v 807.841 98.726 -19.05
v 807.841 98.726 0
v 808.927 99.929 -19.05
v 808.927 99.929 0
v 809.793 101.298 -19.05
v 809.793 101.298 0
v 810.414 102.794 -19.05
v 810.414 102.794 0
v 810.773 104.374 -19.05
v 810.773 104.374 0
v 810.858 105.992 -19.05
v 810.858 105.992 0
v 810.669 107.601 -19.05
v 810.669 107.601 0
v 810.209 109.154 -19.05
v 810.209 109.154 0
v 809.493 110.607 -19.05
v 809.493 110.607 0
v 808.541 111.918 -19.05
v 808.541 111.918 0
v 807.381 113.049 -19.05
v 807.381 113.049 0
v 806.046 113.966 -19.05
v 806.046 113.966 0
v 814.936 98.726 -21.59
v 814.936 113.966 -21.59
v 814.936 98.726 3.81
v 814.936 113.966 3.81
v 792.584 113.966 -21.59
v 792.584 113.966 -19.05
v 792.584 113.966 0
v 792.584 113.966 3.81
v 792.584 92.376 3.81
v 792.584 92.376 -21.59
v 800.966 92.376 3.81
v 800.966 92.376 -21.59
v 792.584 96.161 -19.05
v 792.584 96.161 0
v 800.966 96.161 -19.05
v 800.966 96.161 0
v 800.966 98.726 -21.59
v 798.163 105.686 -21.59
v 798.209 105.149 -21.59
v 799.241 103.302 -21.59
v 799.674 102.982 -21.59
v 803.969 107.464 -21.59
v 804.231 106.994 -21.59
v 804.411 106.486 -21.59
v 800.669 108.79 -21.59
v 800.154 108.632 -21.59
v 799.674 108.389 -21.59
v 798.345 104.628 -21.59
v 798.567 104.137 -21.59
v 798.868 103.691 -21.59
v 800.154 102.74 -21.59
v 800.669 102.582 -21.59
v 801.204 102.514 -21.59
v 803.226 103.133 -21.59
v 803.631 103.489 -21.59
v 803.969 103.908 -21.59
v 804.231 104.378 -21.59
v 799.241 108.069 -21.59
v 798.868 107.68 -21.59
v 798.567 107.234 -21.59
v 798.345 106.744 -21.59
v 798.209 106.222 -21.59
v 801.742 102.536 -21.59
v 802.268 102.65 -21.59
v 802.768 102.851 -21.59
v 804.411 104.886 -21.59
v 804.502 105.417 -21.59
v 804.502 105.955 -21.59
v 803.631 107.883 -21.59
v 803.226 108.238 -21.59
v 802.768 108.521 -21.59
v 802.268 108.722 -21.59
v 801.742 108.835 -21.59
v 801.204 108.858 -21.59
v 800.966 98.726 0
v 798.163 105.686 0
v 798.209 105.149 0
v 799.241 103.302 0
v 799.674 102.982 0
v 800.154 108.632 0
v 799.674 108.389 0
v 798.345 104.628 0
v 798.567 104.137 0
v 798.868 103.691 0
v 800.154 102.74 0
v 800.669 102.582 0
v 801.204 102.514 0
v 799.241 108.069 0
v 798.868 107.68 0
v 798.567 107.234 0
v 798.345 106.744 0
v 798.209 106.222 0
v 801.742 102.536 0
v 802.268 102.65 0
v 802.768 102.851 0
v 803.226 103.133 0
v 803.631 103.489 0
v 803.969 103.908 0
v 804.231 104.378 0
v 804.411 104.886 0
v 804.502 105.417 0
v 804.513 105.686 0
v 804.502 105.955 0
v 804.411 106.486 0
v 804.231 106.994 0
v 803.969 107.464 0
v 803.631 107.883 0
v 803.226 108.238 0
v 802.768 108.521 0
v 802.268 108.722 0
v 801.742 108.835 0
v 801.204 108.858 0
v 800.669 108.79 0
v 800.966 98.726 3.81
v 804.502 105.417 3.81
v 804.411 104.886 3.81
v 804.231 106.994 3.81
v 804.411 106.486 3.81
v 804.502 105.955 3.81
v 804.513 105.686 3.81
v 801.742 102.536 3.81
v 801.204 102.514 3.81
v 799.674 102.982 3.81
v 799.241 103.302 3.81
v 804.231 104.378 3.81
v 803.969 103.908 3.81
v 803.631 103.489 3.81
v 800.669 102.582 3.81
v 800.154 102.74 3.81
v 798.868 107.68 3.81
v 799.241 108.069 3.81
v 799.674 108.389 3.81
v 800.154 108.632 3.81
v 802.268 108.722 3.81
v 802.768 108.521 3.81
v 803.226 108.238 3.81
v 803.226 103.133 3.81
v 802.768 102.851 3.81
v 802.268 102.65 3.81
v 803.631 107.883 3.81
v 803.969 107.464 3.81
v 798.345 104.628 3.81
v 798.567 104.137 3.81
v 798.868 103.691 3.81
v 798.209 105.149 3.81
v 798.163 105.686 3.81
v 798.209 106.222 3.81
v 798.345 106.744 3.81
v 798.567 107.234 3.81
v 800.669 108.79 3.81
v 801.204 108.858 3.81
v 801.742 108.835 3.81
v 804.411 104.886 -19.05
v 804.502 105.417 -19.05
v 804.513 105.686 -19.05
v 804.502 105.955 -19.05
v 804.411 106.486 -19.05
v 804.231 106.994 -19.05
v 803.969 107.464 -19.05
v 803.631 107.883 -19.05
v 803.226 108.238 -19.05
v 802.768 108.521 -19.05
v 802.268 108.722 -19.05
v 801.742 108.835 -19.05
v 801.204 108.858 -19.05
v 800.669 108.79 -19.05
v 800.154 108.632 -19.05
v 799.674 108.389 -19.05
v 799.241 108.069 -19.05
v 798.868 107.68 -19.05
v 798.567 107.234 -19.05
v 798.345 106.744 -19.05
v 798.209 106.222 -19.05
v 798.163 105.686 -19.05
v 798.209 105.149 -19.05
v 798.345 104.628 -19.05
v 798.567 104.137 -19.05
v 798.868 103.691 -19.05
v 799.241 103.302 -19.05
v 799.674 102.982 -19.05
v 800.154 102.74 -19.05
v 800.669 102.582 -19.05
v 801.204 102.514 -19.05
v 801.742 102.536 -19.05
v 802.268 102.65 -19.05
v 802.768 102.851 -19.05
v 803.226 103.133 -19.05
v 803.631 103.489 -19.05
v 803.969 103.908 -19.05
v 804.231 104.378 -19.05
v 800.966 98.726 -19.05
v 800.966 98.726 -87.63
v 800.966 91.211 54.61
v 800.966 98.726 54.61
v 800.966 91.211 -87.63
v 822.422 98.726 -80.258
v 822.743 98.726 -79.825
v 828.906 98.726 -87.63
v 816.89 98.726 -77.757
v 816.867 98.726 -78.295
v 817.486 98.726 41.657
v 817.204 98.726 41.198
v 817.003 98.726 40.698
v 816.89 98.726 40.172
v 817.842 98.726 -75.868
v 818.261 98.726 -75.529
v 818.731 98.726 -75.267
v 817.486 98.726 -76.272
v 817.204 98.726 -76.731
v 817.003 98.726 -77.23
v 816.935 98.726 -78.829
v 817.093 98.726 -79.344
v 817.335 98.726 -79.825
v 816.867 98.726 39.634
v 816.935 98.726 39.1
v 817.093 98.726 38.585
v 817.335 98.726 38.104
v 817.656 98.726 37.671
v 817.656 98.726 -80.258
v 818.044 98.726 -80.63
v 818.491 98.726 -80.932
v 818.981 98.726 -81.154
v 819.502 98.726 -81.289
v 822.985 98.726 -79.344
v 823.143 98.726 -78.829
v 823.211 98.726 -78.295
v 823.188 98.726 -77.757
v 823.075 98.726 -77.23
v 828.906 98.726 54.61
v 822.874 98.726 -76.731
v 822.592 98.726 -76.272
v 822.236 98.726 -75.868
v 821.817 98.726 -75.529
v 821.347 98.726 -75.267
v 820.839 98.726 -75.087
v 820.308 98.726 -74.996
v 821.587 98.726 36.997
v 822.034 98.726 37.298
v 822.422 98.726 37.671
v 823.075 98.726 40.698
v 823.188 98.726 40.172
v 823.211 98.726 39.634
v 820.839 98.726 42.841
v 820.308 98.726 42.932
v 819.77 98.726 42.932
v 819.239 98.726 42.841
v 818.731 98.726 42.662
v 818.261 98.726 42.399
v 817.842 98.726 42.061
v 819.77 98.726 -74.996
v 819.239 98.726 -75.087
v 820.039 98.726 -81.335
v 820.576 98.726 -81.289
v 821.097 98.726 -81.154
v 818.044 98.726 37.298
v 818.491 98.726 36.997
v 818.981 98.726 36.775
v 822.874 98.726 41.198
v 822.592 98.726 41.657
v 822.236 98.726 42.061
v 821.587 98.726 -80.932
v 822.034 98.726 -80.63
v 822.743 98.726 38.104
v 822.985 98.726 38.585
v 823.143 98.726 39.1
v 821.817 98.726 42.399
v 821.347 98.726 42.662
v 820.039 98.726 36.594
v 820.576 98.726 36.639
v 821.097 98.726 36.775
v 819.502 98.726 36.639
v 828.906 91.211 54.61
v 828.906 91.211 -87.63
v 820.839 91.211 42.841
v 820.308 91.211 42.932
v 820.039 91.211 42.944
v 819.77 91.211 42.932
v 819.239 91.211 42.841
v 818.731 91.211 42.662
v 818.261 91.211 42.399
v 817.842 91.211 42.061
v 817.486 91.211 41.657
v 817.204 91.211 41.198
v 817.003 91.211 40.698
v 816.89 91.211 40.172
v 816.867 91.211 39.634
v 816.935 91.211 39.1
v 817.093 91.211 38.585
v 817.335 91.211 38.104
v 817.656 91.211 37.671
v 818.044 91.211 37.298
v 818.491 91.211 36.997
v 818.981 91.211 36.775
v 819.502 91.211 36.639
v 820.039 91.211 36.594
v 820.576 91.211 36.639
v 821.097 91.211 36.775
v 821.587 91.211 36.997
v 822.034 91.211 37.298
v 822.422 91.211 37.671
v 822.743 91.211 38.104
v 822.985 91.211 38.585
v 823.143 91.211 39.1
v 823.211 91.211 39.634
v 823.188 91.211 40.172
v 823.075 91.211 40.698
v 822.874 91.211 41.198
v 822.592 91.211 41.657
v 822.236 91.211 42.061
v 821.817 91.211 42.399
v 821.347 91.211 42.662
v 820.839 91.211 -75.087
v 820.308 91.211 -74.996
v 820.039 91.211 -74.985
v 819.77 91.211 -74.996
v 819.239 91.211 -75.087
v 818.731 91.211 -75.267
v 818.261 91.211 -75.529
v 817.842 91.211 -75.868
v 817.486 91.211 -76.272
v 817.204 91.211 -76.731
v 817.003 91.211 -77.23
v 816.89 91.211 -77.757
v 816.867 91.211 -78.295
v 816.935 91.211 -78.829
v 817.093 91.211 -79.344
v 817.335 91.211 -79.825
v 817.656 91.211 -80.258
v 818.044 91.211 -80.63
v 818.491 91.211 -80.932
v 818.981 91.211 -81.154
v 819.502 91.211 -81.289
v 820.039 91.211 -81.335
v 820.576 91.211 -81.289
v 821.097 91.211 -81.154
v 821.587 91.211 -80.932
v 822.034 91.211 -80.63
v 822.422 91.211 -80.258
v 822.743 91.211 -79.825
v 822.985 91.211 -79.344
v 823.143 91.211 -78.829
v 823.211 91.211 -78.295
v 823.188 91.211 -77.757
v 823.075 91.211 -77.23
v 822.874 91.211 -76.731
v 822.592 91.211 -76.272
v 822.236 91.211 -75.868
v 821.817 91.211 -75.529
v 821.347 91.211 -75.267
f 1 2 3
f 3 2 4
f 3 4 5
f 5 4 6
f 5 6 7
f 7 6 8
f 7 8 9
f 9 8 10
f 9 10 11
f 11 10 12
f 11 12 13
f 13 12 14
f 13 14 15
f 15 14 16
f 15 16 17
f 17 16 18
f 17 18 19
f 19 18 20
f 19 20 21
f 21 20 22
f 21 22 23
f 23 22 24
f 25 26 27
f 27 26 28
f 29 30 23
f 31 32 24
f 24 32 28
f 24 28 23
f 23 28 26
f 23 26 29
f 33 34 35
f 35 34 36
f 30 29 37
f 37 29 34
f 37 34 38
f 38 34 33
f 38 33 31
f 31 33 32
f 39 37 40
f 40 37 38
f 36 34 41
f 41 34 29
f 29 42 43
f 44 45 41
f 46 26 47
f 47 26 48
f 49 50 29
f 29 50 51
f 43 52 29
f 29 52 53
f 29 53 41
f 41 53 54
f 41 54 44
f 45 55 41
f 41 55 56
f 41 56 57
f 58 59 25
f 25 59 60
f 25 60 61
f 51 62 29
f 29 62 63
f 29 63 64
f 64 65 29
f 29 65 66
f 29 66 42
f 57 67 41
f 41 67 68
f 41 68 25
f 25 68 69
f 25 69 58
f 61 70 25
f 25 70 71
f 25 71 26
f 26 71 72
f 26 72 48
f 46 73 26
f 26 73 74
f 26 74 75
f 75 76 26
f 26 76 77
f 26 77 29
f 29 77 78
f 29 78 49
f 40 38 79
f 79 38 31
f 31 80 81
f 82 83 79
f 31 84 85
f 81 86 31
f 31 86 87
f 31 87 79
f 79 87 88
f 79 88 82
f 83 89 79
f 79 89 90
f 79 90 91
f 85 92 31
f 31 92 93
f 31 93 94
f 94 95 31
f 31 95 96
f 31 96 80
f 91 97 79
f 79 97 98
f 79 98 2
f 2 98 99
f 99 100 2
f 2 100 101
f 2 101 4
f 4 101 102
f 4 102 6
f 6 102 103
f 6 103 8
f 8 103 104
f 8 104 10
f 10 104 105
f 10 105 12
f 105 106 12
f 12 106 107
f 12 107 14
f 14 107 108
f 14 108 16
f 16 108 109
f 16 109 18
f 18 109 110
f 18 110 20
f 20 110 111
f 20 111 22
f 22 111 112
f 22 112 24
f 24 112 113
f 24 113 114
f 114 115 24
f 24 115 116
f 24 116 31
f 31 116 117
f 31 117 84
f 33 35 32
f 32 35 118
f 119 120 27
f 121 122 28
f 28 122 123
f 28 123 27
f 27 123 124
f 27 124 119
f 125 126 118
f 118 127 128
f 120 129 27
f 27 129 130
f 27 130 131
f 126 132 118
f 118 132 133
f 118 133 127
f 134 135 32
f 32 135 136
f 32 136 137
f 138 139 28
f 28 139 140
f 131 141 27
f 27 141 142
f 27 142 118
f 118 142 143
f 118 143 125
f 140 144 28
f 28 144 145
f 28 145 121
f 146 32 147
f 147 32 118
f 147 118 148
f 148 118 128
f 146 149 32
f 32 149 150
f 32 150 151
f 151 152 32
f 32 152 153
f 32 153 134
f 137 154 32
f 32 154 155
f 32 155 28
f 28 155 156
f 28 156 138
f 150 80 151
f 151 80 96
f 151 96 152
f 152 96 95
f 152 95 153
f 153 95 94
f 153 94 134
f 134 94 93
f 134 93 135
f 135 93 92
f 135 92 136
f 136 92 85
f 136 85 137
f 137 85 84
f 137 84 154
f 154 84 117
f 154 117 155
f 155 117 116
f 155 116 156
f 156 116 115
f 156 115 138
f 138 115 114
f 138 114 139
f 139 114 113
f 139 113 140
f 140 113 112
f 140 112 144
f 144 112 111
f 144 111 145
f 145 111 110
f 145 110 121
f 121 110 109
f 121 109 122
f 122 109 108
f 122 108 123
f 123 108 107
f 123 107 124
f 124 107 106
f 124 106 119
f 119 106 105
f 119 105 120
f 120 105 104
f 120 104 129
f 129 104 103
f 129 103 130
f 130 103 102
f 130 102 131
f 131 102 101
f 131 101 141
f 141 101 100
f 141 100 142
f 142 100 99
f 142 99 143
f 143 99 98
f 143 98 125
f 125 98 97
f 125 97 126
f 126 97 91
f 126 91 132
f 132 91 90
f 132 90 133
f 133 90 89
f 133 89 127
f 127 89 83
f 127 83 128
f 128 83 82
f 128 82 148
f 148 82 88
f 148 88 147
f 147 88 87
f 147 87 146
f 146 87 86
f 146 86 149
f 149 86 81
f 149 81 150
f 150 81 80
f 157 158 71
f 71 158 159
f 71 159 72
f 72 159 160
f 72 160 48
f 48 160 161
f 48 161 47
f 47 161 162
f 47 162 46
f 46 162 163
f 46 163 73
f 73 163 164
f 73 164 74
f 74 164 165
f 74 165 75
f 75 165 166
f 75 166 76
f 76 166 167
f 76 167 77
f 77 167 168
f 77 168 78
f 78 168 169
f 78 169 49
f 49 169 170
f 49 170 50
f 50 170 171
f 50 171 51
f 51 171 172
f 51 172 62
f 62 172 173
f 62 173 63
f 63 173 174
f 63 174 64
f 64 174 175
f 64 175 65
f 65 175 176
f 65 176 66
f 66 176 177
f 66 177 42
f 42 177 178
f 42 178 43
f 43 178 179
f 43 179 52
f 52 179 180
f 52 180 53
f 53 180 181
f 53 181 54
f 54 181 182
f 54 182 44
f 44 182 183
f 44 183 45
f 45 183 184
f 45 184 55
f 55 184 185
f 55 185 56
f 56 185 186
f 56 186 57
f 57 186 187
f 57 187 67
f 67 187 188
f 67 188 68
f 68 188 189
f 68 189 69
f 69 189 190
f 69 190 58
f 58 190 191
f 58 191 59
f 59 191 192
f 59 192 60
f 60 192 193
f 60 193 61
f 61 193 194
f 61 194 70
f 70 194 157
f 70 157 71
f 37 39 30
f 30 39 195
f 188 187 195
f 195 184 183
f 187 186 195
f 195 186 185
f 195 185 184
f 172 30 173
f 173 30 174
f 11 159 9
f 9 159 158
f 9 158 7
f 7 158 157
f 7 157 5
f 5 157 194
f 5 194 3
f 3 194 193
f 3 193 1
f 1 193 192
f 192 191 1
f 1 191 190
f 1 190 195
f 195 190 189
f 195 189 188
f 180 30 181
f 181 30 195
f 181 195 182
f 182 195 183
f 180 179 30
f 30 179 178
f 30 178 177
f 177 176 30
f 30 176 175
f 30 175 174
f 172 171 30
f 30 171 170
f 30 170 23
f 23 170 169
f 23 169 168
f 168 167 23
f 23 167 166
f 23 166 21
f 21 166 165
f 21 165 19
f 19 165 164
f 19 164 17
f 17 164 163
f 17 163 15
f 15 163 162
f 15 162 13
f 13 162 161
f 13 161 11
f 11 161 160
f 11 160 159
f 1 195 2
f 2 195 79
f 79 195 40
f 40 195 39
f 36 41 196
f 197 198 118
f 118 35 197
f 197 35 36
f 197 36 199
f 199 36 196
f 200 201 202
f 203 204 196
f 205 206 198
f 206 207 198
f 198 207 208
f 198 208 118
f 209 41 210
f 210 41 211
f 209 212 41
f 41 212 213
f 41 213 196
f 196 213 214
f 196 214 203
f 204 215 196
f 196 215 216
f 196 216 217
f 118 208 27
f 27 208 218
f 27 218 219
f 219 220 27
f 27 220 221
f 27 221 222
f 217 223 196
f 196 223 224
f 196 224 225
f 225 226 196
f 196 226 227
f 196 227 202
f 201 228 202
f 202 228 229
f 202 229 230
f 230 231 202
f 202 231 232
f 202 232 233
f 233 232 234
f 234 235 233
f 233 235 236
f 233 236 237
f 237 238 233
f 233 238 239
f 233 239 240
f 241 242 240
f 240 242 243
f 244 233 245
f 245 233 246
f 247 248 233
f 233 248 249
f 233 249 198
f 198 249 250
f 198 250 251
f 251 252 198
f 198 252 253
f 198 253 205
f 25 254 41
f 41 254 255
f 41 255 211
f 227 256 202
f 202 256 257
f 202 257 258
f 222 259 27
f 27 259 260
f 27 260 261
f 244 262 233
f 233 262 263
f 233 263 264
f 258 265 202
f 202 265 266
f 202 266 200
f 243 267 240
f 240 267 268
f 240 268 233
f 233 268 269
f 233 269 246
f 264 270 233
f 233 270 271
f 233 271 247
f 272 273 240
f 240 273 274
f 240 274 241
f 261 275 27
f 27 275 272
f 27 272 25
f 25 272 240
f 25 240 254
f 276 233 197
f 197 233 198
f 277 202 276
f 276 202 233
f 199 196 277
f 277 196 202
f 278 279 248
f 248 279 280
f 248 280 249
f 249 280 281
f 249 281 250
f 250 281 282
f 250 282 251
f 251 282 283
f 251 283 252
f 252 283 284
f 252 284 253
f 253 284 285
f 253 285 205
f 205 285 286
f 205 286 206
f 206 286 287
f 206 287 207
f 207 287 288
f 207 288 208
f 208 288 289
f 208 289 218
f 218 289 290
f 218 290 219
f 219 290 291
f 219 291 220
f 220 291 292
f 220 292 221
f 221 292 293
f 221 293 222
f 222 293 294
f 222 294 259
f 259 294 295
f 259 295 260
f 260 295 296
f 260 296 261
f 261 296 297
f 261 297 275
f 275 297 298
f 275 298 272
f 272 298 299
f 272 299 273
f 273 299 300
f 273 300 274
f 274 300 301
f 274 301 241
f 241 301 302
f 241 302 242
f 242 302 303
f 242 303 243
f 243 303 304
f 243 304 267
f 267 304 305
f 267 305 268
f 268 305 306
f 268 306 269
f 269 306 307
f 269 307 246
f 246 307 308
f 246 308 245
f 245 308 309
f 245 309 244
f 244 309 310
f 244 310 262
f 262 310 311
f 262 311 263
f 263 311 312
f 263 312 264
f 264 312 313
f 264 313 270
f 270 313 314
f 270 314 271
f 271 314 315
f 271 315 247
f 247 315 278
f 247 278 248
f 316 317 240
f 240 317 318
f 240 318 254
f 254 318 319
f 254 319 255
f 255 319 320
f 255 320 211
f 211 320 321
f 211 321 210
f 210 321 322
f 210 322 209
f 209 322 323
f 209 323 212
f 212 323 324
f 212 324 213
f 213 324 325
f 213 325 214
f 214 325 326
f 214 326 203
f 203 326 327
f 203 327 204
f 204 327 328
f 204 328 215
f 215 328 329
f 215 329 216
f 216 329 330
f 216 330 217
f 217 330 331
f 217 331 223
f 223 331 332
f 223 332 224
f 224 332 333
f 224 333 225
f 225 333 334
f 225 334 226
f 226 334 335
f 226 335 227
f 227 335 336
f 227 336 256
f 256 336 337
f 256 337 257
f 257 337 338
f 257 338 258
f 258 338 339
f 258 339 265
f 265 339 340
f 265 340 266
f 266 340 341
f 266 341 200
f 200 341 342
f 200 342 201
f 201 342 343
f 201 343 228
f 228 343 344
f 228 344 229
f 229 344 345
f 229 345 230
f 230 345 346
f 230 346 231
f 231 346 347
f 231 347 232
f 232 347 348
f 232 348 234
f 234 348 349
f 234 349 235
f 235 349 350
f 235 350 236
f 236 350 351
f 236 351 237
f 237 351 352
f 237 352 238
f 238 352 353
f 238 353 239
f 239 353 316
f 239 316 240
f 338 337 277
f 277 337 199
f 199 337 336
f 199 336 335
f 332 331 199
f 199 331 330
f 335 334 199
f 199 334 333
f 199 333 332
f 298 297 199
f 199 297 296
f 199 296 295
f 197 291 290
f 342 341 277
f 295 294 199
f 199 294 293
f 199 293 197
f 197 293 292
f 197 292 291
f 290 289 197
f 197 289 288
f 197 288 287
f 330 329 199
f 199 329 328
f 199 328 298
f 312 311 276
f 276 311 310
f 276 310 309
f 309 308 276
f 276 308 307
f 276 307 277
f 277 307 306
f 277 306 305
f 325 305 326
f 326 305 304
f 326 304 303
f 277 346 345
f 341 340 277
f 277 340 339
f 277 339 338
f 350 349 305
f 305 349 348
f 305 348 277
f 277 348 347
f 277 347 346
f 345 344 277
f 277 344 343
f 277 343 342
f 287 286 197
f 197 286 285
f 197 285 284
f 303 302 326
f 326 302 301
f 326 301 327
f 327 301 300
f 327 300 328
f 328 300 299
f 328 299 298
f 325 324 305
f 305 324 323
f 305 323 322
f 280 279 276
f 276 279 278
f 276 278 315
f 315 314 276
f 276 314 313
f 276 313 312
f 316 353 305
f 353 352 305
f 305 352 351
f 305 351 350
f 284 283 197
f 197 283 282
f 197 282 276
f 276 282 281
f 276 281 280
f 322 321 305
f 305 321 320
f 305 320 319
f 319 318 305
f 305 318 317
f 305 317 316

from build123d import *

# Parameters (mm, degrees)
BOSS_EXTRUDE1_DEPTH      = 21.59
SKETCH2_W                = 22.352
SKETCH2_H                = 21.59
SKETCH2_R                = 3.175
BOSS_EXTRUDE2_DEPTH      = 3.81
BOSS_EXTRUDE3_START      = -2.54
SKETCH3_R                = 3.175
BOSS_EXTRUDE3_DEPTH      = 2.54
BOSS_EXTRUDE4_DEPTH      = 1.164777
BOSS_EXTRUDE4_DEPTH_BACK = 6.35
SKETCH4_W                = 27.94
SKETCH4_H                = 142.24
SKETCH4_R                = 3.175


with BuildPart() as part:
    # Sketch1 → Boss-Extrude1 (new body)
    with BuildSketch(Plane.XY):
        with BuildLine():
            Line((801.338321143, 96.160777143), (792.583825879, 96.160777143))
            Line((792.583825879, 96.160777143), (792.583825879, 92.376177143))
            Line((792.583825879, 92.376177143), (814.935825879, 92.376177143))
            Line((814.935825879, 92.376177143), (814.935825879, 113.966177143))
            Line((814.935825879, 113.966177143), (806.045825879, 113.966177143))
            ThreePointArc((806.045825879, 113.966177143), (810.863321143, 105.685777143), (806.045825879, 97.405377143))
            ThreePointArc((806.045825879, 97.405377143), (803.772947911, 96.477182381), (801.338321143, 96.160777143))
        make_face()
    extrude(amount=-BOSS_EXTRUDE1_DEPTH)

    # Sketch2 → Boss-Extrude2 (add)
    with BuildSketch(Plane.XY):
        with Locations((803.759825879, 103.171177143)):
            Rectangle(SKETCH2_W, SKETCH2_H)
        with Locations((801.338321143, 105.685777143)):
            Circle(SKETCH2_R, mode=Mode.SUBTRACT)
    extrude(amount=BOSS_EXTRUDE2_DEPTH)

    # Sketch3 → Boss-Extrude3 (add)
    with BuildSketch(Plane(origin=(0, 0, -21.59), x_dir=(-1, 0, 0), z_dir=(0, 0, -1)).offset(BOSS_EXTRUDE3_START)):
        with BuildLine():
            Line((-801.338321143, 96.160777143), (-792.583825879, 96.160777143))
            Line((-792.583825879, 96.160777143), (-792.583825879, 113.966177143))
            Line((-792.583825879, 113.966177143), (-806.045825879, 113.966177143))
            ThreePointArc((-806.045825879, 113.966177143), (-810.546915906, 103.251150375), (-801.338321143, 96.160777143))
        make_face()
        with Locations(Location((-801.338321143, 105.685777143, 0), (0, 0, 180))):
            Circle(SKETCH3_R, mode=Mode.SUBTRACT)
    extrude(amount=BOSS_EXTRUDE3_DEPTH)

    # Sketch4 → Boss-Extrude4 (add, two sides: drawn at the far end of the back side and taken through both)
    with BuildSketch(Plane.XZ.offset(-92.376177143).offset(-BOSS_EXTRUDE4_DEPTH_BACK)):
        with Locations((814.935825879, -16.51)):
            Rectangle(SKETCH4_W, SKETCH4_H)
        with Locations(Location((820.039, 39.768571429, 0), (0, 0, 270))):
            Circle(SKETCH4_R, mode=Mode.SUBTRACT)
        with Locations(Location((820.039, -78.16, 0), (0, 0, 270))):
            Circle(SKETCH4_R, mode=Mode.SUBTRACT)
    extrude(amount=BOSS_EXTRUDE4_DEPTH + BOSS_EXTRUDE4_DEPTH_BACK)


solid = part.part
